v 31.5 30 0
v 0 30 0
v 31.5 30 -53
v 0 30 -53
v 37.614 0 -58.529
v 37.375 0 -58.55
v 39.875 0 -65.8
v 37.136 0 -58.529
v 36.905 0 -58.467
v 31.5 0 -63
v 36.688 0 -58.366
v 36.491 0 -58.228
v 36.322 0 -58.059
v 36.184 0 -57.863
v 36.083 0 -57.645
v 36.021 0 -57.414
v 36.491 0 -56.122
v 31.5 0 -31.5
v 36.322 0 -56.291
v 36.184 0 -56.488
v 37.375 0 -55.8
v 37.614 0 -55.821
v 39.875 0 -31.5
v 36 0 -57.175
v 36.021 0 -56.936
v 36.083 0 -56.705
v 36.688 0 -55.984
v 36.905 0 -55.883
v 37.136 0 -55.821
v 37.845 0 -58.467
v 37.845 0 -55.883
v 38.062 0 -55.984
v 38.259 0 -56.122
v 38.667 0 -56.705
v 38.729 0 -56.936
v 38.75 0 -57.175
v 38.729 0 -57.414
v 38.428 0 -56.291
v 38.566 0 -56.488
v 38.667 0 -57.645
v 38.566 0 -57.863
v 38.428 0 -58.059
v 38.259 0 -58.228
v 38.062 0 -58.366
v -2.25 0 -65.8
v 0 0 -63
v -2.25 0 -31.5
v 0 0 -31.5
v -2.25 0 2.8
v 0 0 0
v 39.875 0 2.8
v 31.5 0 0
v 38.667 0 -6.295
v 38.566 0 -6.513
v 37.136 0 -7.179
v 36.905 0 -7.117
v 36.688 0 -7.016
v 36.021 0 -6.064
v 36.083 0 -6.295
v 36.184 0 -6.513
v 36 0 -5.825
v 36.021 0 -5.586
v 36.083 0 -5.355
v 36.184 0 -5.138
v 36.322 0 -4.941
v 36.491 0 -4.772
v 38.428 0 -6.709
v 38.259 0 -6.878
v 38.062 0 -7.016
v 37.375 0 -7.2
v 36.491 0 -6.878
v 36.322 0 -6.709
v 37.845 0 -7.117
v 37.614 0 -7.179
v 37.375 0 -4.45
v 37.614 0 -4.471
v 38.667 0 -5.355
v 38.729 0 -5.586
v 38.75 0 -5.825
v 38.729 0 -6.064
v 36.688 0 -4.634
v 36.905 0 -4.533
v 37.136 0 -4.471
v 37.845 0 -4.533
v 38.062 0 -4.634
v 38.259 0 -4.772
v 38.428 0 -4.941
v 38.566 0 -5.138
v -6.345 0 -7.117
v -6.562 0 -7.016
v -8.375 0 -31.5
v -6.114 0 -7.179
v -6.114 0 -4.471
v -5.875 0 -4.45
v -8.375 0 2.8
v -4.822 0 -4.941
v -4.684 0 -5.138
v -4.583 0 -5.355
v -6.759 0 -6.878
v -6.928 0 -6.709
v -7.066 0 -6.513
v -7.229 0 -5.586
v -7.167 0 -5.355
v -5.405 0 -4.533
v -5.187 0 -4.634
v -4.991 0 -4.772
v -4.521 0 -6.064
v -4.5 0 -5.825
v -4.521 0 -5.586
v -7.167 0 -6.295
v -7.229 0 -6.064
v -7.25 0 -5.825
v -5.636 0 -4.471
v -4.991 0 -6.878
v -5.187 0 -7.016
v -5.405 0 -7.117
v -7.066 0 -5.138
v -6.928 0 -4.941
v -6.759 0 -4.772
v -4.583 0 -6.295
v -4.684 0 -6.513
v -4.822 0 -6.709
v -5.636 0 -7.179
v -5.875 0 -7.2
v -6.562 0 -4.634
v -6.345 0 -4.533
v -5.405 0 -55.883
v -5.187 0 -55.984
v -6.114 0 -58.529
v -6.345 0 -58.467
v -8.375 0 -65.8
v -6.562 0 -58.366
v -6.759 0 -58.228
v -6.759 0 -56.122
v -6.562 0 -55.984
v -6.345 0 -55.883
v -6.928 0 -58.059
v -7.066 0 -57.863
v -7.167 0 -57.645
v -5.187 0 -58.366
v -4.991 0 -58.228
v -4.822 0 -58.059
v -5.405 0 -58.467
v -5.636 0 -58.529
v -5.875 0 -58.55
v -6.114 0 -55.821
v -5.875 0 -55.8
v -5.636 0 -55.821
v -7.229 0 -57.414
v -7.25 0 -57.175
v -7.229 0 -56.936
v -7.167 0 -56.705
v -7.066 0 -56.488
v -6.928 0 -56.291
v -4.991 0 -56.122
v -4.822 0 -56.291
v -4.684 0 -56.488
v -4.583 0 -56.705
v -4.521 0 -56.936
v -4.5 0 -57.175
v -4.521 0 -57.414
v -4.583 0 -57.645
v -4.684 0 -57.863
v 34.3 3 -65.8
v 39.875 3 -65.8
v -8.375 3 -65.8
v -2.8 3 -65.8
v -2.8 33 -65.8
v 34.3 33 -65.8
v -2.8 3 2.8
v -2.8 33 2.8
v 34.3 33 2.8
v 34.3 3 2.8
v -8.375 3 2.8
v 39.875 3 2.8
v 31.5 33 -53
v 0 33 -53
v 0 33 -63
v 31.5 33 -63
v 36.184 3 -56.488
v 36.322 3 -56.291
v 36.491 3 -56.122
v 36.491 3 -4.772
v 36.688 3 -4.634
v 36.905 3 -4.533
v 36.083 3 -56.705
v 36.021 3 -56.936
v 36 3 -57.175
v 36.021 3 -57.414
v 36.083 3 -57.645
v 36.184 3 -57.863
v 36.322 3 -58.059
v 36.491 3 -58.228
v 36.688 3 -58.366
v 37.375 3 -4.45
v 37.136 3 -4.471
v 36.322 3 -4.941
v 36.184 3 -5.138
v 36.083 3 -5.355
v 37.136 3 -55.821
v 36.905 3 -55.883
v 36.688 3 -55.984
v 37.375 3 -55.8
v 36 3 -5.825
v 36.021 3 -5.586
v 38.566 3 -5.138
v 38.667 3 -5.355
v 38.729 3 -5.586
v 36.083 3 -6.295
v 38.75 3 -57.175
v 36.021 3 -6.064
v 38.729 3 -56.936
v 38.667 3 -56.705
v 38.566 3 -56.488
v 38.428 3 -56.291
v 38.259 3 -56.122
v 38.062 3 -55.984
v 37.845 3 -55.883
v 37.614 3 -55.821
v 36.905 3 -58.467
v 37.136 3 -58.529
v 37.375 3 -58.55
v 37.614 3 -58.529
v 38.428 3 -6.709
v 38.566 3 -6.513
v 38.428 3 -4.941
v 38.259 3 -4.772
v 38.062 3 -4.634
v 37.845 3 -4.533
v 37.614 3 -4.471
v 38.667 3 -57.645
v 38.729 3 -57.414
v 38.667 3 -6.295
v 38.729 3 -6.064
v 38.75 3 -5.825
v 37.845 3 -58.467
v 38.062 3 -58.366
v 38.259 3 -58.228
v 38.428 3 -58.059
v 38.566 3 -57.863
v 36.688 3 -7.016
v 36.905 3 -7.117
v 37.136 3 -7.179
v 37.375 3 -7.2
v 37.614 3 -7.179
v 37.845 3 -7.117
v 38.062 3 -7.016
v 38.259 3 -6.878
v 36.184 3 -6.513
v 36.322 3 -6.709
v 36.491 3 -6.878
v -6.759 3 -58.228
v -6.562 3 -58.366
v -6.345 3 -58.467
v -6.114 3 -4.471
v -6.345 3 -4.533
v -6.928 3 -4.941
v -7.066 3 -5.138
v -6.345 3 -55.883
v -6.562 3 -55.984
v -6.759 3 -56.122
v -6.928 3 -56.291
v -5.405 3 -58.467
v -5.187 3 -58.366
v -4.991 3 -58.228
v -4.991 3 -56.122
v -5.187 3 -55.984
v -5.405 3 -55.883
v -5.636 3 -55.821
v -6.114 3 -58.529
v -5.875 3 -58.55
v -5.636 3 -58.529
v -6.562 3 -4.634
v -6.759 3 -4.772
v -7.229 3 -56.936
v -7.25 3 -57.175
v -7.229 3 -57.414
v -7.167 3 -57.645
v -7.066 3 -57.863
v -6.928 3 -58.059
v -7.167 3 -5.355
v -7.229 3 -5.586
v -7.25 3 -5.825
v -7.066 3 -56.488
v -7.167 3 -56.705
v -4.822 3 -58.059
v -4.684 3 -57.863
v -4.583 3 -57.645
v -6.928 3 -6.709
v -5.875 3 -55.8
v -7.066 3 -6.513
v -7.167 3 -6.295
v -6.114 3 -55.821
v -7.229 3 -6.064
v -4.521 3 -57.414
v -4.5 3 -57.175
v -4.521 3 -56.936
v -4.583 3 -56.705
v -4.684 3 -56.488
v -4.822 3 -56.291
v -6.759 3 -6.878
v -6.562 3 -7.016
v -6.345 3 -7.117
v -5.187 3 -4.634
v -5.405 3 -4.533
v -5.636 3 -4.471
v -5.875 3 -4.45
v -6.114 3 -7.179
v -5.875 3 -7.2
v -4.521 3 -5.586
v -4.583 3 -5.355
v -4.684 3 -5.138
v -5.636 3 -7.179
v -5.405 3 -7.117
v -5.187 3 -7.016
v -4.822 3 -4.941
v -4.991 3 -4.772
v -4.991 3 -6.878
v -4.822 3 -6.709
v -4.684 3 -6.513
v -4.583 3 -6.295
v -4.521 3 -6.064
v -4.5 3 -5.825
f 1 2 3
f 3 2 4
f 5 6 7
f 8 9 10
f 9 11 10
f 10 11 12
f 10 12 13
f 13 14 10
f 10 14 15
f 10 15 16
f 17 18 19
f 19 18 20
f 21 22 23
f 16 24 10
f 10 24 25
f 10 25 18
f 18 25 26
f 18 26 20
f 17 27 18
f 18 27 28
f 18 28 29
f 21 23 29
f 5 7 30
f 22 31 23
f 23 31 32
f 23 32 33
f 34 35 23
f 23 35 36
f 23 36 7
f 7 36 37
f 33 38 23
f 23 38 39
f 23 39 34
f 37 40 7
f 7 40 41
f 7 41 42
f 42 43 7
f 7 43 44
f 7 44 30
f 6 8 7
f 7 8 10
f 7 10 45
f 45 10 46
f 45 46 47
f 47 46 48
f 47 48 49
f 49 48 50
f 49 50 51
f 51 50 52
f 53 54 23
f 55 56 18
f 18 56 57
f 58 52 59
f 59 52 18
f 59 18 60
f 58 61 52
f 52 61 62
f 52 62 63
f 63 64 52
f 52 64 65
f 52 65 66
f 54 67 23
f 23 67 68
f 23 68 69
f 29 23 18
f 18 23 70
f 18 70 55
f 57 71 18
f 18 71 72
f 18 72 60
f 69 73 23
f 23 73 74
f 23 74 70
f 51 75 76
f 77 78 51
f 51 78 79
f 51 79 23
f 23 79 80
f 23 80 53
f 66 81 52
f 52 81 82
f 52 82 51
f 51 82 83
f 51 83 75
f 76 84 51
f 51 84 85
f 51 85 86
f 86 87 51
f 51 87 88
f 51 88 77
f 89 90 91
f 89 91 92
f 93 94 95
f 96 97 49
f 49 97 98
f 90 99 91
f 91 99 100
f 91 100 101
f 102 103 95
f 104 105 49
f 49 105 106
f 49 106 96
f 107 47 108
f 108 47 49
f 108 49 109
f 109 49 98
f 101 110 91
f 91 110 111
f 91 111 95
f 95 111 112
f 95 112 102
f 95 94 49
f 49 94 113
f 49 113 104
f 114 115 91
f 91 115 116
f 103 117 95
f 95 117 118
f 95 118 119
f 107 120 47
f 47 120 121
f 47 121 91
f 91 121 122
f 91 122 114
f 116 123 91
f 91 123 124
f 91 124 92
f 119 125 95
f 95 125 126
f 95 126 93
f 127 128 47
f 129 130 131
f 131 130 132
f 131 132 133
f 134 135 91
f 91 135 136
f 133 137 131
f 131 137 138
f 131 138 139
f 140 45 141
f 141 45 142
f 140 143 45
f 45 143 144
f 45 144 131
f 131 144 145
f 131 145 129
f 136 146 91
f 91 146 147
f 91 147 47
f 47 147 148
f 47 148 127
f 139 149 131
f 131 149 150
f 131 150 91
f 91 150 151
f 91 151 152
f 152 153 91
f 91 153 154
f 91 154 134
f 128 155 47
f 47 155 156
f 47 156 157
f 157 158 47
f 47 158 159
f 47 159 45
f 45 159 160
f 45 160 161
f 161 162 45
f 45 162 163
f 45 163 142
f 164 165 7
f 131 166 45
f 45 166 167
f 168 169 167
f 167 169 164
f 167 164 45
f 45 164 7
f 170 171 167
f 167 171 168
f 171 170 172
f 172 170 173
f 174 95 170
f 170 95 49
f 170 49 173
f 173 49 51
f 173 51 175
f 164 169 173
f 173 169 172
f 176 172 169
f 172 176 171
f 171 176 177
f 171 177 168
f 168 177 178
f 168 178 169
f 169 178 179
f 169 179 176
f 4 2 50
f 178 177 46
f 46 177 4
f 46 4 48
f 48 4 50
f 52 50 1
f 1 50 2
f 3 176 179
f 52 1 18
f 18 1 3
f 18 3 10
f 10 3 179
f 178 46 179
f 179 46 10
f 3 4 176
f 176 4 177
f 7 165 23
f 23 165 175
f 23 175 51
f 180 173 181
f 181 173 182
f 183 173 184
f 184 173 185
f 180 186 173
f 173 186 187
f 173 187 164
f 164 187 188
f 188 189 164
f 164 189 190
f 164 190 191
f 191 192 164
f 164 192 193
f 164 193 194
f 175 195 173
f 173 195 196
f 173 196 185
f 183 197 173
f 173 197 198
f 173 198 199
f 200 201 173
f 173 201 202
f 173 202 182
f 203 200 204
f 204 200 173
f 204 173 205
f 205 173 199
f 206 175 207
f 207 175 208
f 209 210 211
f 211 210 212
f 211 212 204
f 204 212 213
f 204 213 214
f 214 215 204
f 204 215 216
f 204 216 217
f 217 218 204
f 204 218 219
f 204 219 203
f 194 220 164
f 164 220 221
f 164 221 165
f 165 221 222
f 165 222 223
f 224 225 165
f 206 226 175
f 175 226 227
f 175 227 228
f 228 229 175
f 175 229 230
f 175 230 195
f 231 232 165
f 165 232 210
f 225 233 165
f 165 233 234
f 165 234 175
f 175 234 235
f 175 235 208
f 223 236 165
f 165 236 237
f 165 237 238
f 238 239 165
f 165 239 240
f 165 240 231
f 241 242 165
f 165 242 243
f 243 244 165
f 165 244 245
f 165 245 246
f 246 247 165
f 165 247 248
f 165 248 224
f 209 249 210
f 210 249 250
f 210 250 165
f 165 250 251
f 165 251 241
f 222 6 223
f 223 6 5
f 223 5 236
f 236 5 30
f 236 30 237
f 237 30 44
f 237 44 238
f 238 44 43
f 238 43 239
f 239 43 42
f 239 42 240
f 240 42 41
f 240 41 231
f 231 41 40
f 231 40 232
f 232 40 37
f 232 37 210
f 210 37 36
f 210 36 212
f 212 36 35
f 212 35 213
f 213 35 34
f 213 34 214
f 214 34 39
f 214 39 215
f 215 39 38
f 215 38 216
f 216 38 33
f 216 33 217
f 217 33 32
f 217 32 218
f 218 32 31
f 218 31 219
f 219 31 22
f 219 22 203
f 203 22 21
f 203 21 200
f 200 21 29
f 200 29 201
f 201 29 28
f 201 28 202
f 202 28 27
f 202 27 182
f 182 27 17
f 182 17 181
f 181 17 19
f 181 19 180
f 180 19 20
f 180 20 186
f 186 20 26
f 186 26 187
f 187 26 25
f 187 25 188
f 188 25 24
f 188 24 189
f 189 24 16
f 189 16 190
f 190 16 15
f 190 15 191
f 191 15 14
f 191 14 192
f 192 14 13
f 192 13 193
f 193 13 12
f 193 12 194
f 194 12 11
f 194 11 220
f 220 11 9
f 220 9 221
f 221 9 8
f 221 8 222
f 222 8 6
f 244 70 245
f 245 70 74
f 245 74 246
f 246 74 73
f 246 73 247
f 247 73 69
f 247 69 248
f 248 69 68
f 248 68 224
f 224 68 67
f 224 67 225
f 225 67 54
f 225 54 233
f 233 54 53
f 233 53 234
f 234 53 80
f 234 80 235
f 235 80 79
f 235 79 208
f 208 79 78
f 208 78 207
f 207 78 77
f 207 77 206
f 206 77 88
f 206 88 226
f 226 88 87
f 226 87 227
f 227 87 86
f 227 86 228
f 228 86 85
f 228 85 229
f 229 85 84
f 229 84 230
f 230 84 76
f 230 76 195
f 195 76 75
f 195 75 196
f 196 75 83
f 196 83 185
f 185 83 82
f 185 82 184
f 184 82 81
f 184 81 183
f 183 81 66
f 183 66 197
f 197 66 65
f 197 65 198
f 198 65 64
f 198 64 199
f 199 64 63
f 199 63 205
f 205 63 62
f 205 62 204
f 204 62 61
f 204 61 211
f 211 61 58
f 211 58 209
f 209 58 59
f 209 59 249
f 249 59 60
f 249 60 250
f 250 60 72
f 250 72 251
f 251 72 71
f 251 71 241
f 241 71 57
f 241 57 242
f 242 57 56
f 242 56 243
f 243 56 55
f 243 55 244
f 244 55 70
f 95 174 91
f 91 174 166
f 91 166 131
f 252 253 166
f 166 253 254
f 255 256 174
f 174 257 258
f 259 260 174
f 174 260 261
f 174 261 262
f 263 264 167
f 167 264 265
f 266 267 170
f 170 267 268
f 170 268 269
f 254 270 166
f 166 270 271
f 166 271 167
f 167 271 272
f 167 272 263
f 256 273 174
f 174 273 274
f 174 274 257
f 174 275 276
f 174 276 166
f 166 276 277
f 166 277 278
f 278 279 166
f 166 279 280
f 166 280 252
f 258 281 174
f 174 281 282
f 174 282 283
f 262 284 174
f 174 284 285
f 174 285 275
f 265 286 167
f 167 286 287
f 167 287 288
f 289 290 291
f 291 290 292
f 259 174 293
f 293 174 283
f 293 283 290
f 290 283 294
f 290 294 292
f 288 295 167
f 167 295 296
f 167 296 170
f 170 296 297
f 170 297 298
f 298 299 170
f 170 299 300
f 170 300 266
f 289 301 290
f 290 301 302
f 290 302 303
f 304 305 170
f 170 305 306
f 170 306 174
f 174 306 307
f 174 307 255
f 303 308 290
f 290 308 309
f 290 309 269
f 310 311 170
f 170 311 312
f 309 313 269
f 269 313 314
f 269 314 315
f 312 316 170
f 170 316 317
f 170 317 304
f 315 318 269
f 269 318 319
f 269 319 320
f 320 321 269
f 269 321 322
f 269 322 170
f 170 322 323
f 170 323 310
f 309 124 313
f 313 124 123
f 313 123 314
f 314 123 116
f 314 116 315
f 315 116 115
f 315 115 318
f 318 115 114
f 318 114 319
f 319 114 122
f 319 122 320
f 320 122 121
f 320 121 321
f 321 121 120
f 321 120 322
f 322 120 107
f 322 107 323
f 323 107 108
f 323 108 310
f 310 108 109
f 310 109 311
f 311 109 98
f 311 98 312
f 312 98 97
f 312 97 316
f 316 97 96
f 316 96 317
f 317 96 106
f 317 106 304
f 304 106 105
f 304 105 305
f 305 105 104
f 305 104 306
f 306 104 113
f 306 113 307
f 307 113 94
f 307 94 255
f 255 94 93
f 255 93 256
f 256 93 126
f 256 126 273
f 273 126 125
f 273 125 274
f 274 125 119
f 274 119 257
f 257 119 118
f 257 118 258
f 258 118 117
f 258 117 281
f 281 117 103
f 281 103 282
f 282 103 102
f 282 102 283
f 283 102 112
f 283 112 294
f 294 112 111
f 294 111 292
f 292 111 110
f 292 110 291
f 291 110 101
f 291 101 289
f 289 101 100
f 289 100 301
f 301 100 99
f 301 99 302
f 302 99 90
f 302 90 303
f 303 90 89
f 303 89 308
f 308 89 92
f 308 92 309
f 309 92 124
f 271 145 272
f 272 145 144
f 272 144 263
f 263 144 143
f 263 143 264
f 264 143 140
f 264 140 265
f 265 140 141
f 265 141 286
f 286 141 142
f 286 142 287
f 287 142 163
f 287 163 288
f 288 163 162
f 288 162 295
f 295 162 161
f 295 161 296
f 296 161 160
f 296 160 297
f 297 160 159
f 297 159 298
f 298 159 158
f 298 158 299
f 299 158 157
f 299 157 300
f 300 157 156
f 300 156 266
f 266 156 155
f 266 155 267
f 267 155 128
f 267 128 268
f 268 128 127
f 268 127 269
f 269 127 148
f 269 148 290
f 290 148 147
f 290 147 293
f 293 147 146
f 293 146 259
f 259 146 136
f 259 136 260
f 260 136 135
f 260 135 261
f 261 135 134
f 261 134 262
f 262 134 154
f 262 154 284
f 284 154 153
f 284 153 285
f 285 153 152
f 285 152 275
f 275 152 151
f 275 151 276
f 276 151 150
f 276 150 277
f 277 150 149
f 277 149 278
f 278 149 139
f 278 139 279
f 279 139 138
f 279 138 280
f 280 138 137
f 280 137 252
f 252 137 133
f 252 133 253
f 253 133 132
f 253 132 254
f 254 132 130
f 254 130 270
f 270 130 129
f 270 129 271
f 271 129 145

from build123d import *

# Parameters (mm, degrees)
SKETCH2_W           = 37.1
SKETCH2_H           = 68.6
BOSS_EXTRUDE1_DEPTH = 33
SKETCH1_W           = 31.5
SKETCH1_H           = 63
CUT_EXTRUDE1_DEPTH  = 30
SKETCH3_W           = 31.5
SKETCH3_H           = 10
CUT_EXTRUDE2_DEPTH  = 5
SKETCH6_W           = 5.575
SKETCH6_H           = 68.6
SKETCH6_R           = 1.375
BOSS_EXTRUDE2_DEPTH = 3


with BuildPart() as part:
    # Sketch2 → Boss-Extrude1 (new body)
    with BuildSketch(Plane(origin=(0, 0, 0), x_dir=(1, 0, 0), z_dir=(0, 1, 0))):
        with Locations((15.75, 31.5)):
            Rectangle(SKETCH2_W, SKETCH2_H)
    extrude(amount=BOSS_EXTRUDE1_DEPTH)

    # Sketch1 → Cut-Extrude1 (cut)
    with BuildSketch(Plane(origin=(0, 0, 0), x_dir=(1, 0, 0), z_dir=(0, 1, 0))):
        with Locations((15.75, 31.5)):
            Rectangle(SKETCH1_W, SKETCH1_H)
    extrude(amount=CUT_EXTRUDE1_DEPTH, mode=Mode.SUBTRACT)

    # Sketch3 → Cut-Extrude2 (cut)
    with BuildSketch(Plane.XZ.offset(-30)):
        with Locations((15.75, -58)):
            Rectangle(SKETCH3_W, SKETCH3_H)
    extrude(amount=-CUT_EXTRUDE2_DEPTH, mode=Mode.SUBTRACT)

    # Sketch6 → Boss-Extrude2 (add)
    # profile 1 of 2: a face of its own
    with BuildSketch(Plane.XZ):
        with Locations((37.0875, -31.5)):
            Rectangle(SKETCH6_W, SKETCH6_H)
        with Locations(Location((37.375, -57.175, 0), (0, 0, 270))):
            Circle(SKETCH6_R, mode=Mode.SUBTRACT)
        with Locations(Location((37.375, -5.825, 0), (0, 0, 90))):
            Circle(SKETCH6_R, mode=Mode.SUBTRACT)
    # profile 2 of 2: a face of its own
    with BuildSketch(Plane.XZ):
        with Locations((-5.5875, -31.5)):
            Rectangle(SKETCH6_W, SKETCH6_H)
        with Locations(Location((-5.875, -5.825, 0), (0, 0, 270))):
            Circle(SKETCH6_R, mode=Mode.SUBTRACT)
        with Locations(Location((-5.875, -57.175, 0), (0, 0, 90))):
            Circle(SKETCH6_R, mode=Mode.SUBTRACT)
    extrude(amount=-BOSS_EXTRUDE2_DEPTH)


solid = part.part
